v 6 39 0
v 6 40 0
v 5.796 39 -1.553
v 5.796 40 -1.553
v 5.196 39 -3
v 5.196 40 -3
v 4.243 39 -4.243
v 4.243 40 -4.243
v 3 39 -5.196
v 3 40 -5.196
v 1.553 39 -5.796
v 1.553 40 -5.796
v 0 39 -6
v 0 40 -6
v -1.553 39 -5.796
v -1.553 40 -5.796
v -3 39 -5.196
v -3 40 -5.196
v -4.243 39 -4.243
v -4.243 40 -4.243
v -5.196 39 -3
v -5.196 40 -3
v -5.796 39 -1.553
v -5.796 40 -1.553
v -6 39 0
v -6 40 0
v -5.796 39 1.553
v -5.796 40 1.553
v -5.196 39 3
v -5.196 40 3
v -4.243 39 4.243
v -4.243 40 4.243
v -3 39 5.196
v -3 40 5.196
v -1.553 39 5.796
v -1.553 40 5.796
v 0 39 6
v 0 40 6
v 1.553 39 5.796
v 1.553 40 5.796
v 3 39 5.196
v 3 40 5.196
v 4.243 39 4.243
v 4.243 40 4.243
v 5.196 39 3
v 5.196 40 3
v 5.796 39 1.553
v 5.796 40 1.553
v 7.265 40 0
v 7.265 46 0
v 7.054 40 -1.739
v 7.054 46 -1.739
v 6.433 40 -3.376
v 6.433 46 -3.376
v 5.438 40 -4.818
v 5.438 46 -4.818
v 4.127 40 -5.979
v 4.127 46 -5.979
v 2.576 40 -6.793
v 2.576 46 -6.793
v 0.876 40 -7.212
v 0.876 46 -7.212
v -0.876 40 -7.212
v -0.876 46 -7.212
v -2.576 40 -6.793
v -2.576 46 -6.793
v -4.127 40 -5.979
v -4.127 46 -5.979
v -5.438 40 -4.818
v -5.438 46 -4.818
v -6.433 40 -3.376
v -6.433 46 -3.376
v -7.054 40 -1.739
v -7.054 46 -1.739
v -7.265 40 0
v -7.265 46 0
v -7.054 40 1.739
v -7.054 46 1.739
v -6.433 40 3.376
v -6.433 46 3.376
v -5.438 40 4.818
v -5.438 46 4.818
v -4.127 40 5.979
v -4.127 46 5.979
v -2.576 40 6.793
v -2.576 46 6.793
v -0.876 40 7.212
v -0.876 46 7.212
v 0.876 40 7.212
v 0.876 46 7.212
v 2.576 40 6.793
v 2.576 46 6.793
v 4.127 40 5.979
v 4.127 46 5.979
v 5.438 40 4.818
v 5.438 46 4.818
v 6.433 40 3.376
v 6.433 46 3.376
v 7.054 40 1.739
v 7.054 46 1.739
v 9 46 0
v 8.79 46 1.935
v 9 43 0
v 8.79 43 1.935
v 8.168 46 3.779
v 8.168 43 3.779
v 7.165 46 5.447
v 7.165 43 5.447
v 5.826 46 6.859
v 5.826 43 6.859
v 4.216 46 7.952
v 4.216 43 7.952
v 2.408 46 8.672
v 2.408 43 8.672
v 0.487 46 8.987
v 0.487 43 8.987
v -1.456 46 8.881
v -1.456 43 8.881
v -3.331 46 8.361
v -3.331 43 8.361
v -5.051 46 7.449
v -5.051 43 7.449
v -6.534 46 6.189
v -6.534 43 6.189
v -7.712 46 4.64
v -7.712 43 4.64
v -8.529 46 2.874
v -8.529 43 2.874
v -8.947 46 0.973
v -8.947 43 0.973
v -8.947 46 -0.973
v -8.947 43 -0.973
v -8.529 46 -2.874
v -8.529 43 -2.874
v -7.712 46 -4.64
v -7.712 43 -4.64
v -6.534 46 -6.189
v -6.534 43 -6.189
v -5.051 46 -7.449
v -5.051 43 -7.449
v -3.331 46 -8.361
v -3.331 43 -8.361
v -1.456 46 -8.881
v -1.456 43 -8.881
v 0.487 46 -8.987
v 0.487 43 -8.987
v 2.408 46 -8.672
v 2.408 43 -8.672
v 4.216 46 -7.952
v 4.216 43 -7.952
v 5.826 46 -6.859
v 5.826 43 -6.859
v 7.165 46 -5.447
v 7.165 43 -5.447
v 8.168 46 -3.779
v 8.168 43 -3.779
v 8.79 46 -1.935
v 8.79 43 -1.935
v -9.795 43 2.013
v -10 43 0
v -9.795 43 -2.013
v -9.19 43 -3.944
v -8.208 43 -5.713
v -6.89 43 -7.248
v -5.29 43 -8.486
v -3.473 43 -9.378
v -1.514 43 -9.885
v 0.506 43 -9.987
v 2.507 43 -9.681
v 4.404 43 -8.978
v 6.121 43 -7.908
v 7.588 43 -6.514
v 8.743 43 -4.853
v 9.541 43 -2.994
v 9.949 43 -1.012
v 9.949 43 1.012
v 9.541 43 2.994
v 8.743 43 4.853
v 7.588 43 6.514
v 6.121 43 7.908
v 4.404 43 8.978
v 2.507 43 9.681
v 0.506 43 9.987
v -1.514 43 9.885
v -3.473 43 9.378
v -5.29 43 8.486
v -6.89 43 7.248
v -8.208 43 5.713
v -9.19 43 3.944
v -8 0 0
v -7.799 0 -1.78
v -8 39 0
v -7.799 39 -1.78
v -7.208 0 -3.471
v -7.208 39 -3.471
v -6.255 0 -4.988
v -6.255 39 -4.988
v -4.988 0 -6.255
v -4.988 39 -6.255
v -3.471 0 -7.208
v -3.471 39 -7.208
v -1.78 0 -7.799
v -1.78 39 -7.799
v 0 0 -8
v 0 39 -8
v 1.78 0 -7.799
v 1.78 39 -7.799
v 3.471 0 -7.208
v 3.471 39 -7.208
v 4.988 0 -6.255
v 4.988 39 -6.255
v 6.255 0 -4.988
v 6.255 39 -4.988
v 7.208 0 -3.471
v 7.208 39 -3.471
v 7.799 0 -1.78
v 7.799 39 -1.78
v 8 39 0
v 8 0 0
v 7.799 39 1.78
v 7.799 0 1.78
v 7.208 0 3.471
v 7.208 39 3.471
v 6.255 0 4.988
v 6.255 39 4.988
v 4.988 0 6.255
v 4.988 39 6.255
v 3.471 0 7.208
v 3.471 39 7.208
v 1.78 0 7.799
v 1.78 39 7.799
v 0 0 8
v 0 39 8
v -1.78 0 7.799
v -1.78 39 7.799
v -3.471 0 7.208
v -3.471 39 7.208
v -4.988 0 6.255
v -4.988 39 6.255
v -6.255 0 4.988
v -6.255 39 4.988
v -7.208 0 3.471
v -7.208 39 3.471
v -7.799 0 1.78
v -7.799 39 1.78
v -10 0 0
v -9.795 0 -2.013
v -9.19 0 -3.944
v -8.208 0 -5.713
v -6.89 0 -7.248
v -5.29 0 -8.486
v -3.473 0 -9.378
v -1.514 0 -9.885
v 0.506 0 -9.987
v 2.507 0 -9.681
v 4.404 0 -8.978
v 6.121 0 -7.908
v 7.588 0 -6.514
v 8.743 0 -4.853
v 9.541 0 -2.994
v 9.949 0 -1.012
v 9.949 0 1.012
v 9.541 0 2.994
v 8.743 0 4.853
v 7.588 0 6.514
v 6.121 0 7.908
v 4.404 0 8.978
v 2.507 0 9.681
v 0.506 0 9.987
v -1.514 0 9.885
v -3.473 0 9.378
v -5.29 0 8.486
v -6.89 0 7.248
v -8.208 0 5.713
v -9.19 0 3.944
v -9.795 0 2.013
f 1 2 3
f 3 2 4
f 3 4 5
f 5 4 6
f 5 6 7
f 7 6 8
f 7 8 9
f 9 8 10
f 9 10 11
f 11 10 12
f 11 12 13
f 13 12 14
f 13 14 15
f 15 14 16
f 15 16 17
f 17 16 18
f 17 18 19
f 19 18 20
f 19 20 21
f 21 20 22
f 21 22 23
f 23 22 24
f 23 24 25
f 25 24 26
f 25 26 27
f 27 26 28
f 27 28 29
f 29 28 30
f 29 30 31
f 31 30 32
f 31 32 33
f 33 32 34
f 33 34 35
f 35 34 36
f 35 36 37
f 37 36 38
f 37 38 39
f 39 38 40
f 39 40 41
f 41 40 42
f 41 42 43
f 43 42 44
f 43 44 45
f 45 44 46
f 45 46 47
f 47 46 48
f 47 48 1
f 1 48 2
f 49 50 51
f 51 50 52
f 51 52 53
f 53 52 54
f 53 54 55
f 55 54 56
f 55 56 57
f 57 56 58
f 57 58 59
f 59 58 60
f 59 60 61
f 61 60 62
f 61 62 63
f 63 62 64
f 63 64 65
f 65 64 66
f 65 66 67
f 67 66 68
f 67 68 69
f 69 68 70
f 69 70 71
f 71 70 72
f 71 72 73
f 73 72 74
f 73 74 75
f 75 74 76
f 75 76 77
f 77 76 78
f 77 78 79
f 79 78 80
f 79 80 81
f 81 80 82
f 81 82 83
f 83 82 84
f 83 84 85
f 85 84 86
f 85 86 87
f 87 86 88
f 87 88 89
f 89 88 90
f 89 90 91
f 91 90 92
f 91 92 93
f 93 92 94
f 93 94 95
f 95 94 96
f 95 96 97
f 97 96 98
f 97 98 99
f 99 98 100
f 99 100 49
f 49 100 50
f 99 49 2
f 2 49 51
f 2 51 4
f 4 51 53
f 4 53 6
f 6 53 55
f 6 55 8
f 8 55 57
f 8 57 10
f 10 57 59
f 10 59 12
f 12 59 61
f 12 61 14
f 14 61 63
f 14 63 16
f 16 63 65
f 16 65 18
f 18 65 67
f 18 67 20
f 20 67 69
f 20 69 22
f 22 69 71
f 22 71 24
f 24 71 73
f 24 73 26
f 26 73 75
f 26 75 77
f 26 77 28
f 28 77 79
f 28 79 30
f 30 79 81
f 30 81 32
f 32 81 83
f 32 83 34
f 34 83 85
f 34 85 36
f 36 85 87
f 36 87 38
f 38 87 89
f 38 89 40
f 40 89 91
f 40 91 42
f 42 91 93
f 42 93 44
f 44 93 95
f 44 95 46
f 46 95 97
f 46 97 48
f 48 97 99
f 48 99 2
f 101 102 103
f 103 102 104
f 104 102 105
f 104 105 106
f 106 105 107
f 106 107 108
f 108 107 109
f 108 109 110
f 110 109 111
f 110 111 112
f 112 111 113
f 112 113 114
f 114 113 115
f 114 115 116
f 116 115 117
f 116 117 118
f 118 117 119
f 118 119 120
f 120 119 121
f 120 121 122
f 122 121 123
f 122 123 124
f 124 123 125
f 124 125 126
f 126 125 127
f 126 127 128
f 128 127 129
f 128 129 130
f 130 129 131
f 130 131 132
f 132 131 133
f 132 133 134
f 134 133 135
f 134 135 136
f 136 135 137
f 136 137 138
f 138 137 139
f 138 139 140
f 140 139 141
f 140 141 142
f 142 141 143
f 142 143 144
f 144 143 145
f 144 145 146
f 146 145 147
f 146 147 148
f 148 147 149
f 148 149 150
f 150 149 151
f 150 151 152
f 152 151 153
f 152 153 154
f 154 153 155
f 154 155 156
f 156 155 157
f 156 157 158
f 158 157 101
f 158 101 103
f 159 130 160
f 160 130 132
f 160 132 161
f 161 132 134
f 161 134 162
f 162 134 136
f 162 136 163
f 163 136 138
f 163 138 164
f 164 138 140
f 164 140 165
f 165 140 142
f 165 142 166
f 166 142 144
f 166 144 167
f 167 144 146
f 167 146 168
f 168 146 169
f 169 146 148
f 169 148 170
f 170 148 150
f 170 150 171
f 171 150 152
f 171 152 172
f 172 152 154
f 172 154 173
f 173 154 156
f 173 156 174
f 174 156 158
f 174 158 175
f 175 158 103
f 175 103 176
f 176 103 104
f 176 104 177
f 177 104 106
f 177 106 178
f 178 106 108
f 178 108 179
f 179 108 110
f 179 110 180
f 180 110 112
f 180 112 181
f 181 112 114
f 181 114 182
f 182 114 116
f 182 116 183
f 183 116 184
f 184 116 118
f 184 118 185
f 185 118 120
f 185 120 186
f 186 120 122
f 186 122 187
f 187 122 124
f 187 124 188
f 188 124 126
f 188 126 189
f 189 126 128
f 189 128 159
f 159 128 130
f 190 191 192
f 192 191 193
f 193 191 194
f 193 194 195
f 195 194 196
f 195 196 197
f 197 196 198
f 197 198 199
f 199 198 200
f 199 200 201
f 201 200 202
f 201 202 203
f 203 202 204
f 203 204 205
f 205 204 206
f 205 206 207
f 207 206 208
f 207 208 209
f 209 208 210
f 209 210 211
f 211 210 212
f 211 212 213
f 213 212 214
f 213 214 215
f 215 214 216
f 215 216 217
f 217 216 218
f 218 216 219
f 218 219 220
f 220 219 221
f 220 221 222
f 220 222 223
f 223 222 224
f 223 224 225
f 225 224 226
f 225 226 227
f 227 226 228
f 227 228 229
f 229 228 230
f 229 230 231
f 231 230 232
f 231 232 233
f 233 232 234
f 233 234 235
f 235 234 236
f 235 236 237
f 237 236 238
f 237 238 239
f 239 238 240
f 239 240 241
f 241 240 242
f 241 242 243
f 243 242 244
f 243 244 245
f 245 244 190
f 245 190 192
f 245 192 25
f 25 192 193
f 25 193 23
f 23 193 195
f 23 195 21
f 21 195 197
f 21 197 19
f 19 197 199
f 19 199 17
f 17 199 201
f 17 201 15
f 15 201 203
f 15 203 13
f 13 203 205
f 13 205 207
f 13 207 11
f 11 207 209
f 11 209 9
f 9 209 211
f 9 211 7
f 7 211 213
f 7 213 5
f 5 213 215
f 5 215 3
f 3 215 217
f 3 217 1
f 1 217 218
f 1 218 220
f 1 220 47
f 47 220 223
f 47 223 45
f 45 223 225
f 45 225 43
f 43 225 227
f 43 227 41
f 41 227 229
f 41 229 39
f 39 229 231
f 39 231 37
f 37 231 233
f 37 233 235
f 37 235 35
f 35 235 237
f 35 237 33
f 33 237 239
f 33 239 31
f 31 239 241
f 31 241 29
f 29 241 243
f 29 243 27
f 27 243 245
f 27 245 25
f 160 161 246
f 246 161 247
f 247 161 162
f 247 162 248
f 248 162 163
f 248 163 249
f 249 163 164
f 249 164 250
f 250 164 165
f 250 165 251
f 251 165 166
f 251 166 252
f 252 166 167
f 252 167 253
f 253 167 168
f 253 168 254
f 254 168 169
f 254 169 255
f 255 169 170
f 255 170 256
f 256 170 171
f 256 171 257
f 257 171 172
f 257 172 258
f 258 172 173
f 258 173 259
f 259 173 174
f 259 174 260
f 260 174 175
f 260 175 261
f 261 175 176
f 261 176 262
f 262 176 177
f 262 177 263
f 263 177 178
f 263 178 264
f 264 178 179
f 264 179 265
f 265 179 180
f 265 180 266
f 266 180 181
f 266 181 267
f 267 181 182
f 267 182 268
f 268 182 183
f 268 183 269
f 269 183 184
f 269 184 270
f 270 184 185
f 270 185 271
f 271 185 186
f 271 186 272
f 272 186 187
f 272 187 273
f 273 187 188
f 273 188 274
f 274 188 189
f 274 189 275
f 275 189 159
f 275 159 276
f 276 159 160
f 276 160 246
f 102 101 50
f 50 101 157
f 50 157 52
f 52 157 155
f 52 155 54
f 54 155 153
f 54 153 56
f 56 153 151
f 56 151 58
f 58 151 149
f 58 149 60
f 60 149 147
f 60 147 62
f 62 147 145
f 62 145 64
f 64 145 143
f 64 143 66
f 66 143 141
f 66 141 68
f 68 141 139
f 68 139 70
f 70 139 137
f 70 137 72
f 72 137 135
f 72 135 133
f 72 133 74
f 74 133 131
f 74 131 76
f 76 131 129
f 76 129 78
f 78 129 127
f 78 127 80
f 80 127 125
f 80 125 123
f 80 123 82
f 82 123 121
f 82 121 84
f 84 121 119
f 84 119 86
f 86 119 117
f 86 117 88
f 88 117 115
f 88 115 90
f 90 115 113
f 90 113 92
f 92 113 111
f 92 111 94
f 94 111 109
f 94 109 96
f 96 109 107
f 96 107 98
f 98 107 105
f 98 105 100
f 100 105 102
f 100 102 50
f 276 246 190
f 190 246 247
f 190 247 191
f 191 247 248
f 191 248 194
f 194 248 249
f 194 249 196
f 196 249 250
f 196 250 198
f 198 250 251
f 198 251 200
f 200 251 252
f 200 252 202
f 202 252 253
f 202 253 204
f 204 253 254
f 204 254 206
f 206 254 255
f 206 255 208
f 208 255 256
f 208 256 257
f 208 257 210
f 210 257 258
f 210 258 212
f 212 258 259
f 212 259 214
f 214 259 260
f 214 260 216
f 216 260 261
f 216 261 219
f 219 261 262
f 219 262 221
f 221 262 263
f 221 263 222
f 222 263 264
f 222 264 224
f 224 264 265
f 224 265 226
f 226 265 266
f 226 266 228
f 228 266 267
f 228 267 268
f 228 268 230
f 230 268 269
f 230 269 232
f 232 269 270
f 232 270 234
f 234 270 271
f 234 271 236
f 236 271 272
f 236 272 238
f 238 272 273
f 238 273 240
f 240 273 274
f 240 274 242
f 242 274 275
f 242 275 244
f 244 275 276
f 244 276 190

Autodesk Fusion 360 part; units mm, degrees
sketch "Sketch1" plane through (0, 0, 0) normal (0, 1, 0) x (1, 0, 0)
  circle A0 centre (0, 0) radius 10
  dimension "d1" = 20
extrude "Extrude1" add sketch "Sketch1" along normal blind 46
sketch "Sketch2" plane through (0, 0, 0) normal (0, 1, 0) x (1, 0, 0)
  circle A0 centre (0, 0) radius 8
  dimension "d4" = 16
extrude "Extrude2" cut sketch "Sketch2" along normal blind 39
sketch "Sketch3" plane through (0, 46, 0) normal (0, 1, 0) x (-1, 0, 0)
  circle A0 centre (0, 0) radius 10
  circle A1 centre (0, 0) radius 9
  dimension "d7" = 18
extrude "Extrude3" cut sketch "Sketch3" against normal blind 3
sketch "Sketch4" plane through (0, 46, 0) normal (0, 1, 0) x (-1, 0, 0)
  circle A0 centre (0, 0) radius 9
  circle A1 centre (0, 0) radius 7.265
  dimension "d10" = 14.53
extrude "Extrude4" cut sketch "Sketch4" against normal blind 6 contours A1
sketch "Sketch5" plane through (0, 40, 0) normal (0, 1, 0) x (-1, 0, 0)
  circle A0 centre (0, 0) radius 7.265
  circle A1 centre (0, 0) radius 6
  dimension "d13" = 12
extrude "Extrude5" cut sketch "Sketch5" against normal blind 10 contours A1
